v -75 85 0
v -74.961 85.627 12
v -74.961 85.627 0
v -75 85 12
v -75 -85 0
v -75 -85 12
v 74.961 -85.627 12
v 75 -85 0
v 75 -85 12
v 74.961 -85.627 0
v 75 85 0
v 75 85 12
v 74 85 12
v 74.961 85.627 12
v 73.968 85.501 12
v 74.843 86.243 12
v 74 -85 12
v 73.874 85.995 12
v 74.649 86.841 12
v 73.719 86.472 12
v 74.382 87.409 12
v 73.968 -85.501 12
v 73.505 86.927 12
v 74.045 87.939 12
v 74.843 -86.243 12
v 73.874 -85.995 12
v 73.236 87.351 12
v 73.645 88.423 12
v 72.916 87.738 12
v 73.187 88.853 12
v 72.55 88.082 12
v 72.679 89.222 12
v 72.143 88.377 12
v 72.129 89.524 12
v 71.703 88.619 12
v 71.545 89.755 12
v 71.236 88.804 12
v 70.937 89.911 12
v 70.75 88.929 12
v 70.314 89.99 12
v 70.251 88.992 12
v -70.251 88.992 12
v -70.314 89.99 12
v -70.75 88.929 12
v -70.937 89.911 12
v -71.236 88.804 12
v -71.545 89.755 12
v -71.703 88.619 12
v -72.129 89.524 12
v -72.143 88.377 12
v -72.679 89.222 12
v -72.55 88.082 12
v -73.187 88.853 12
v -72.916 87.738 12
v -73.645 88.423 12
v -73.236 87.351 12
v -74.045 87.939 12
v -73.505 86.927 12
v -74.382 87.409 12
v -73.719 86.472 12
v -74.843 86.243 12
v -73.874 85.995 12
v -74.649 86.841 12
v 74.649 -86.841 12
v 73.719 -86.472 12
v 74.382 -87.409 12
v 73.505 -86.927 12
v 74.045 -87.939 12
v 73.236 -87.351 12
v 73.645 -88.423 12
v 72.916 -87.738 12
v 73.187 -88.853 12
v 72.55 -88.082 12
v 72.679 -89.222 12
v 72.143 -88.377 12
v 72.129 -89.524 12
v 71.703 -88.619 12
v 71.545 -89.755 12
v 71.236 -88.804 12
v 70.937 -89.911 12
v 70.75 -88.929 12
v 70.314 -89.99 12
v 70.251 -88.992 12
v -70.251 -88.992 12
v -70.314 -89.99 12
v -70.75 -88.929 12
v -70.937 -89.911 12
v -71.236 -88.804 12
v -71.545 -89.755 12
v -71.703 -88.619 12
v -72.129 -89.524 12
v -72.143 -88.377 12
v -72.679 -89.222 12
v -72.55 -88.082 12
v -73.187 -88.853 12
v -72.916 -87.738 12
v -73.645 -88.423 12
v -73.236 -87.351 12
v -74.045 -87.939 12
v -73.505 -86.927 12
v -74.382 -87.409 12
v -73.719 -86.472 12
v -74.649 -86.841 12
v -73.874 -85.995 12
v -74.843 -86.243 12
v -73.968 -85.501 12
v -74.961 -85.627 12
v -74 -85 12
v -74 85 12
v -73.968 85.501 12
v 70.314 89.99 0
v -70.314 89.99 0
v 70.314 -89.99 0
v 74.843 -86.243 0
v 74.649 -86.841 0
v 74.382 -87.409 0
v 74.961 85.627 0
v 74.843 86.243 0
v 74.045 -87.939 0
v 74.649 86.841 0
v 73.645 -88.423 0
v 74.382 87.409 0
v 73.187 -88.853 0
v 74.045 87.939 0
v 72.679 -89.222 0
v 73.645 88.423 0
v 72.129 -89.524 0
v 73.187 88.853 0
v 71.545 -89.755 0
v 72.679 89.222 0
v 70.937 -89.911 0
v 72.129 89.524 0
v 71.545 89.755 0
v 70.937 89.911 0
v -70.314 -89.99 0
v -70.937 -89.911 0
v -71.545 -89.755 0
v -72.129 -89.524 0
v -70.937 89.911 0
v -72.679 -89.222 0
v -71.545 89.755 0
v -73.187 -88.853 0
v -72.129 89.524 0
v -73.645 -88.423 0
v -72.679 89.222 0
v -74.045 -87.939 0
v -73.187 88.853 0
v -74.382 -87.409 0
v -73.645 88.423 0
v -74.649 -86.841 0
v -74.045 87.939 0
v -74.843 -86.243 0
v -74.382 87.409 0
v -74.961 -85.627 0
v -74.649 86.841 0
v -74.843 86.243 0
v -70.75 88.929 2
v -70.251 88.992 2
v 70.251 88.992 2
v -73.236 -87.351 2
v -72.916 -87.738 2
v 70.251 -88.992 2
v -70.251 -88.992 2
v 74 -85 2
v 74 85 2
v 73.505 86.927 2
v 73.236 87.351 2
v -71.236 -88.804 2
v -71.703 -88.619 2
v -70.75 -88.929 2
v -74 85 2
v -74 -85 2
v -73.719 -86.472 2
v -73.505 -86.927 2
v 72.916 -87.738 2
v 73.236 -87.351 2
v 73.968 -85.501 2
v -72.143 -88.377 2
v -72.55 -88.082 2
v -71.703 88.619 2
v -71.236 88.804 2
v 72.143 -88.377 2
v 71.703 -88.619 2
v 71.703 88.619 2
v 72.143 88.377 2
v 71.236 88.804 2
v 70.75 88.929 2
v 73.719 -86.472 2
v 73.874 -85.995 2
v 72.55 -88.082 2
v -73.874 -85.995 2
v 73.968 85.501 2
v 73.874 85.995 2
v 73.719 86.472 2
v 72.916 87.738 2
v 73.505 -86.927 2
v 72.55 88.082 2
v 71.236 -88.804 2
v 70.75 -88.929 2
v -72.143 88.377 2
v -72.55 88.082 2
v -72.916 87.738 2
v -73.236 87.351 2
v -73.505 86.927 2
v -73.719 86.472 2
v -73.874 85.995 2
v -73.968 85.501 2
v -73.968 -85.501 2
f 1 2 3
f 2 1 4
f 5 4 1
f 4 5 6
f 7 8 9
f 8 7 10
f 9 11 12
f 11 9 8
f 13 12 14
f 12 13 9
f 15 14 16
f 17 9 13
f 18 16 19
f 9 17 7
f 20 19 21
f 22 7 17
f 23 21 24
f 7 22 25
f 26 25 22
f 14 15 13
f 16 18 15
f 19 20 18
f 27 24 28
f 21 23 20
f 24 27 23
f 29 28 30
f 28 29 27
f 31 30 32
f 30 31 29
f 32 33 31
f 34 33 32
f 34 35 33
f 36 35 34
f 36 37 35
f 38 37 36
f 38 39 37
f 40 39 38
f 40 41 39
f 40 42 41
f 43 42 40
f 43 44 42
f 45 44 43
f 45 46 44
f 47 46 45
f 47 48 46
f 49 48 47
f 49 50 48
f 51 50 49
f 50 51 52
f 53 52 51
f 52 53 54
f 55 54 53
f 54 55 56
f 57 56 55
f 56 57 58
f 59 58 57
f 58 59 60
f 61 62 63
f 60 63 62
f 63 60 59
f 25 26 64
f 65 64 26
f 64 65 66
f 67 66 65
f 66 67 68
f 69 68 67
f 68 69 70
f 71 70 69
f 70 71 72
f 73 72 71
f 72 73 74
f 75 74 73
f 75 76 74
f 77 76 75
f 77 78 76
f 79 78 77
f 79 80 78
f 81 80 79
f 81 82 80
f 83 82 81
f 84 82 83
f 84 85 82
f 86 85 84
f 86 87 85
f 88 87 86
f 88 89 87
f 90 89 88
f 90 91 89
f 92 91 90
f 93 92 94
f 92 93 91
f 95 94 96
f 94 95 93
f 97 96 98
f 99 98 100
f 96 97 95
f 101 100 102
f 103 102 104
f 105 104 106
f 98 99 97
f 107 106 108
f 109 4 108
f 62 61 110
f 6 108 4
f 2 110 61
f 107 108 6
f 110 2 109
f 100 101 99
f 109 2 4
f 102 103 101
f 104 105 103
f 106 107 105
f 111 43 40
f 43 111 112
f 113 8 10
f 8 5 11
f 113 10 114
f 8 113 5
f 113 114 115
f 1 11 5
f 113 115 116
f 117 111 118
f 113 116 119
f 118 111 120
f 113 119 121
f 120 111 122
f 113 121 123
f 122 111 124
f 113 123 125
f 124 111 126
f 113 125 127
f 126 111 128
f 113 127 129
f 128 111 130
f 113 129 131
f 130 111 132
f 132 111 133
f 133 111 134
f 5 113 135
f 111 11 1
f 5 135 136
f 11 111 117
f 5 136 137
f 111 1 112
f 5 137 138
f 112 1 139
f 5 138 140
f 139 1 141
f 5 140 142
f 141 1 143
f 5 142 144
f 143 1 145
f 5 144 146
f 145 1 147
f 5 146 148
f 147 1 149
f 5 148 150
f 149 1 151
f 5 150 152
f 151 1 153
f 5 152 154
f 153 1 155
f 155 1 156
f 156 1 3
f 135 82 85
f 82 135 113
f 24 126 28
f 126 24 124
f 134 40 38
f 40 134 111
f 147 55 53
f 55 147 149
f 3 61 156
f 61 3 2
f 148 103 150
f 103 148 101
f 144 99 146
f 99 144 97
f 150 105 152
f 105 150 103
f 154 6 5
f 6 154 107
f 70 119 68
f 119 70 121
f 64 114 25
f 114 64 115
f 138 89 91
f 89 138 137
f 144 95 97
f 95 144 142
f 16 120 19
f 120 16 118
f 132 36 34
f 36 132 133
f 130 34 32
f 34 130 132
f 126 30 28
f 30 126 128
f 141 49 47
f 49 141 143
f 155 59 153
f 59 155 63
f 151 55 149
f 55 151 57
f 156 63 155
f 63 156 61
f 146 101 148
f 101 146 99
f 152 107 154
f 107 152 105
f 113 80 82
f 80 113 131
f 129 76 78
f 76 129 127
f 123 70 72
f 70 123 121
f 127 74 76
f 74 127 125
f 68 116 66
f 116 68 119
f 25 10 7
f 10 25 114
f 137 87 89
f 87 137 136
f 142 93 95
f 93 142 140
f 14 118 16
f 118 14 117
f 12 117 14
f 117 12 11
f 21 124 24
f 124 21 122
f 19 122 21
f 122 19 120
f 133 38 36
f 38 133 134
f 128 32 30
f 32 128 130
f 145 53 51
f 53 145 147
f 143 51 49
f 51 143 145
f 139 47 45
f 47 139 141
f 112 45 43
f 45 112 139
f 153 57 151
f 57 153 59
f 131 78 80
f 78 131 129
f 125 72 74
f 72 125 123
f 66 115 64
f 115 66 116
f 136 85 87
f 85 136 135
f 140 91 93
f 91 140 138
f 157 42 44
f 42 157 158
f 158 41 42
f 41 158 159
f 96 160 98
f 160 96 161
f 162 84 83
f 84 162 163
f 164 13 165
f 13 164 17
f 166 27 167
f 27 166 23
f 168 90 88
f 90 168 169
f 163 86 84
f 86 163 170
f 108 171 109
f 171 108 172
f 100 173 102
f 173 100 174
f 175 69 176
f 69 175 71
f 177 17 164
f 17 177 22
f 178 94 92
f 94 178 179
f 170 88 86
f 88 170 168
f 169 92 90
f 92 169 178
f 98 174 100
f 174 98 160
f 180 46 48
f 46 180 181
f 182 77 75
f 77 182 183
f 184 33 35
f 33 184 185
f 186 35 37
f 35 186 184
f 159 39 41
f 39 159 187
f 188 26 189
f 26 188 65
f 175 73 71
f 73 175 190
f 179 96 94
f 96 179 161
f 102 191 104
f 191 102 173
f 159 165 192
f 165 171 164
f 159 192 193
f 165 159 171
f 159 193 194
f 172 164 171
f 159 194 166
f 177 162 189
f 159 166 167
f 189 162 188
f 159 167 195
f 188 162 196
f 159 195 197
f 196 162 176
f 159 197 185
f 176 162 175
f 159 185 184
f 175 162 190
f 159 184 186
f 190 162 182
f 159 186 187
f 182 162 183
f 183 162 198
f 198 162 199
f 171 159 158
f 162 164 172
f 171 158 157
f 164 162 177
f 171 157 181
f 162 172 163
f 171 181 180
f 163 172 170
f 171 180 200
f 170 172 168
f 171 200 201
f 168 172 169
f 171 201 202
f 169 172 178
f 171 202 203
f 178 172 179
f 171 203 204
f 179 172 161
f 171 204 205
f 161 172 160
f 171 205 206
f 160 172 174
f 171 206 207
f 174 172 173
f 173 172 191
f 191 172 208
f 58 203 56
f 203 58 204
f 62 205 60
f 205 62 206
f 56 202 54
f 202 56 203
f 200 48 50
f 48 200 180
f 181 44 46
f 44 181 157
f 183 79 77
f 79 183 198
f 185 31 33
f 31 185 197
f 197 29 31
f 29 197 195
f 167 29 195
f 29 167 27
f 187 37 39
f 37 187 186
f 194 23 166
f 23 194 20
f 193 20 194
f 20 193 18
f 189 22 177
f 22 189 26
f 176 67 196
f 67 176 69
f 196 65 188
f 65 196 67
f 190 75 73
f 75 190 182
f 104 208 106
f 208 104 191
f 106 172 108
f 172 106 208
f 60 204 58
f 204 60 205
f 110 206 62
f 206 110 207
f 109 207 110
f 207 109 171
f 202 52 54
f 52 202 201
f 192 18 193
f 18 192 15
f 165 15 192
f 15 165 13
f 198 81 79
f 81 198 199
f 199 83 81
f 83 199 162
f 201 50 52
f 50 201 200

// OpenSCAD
$fn = 50;


difference() {
	union() {
		hull() {
			translate(v = [-70.0000000000, 85.0000000000, 0]) {
				cylinder(h = 12, r = 5);
			}
			translate(v = [70.0000000000, 85.0000000000, 0]) {
				cylinder(h = 12, r = 5);
			}
			translate(v = [-70.0000000000, -85.0000000000, 0]) {
				cylinder(h = 12, r = 5);
			}
			translate(v = [70.0000000000, -85.0000000000, 0]) {
				cylinder(h = 12, r = 5);
			}
		}
	}
	union() {
		translate(v = [0, 0, 2]) {
			hull() {
				translate(v = [-70.0000000000, 85.0000000000, 0]) {
					cylinder(h = 10, r = 4);
				}
				translate(v = [70.0000000000, 85.0000000000, 0]) {
					cylinder(h = 10, r = 4);
				}
				translate(v = [-70.0000000000, -85.0000000000, 0]) {
					cylinder(h = 10, r = 4);
				}
				translate(v = [70.0000000000, -85.0000000000, 0]) {
					cylinder(h = 10, r = 4);
				}
			}
		}
	}
}
